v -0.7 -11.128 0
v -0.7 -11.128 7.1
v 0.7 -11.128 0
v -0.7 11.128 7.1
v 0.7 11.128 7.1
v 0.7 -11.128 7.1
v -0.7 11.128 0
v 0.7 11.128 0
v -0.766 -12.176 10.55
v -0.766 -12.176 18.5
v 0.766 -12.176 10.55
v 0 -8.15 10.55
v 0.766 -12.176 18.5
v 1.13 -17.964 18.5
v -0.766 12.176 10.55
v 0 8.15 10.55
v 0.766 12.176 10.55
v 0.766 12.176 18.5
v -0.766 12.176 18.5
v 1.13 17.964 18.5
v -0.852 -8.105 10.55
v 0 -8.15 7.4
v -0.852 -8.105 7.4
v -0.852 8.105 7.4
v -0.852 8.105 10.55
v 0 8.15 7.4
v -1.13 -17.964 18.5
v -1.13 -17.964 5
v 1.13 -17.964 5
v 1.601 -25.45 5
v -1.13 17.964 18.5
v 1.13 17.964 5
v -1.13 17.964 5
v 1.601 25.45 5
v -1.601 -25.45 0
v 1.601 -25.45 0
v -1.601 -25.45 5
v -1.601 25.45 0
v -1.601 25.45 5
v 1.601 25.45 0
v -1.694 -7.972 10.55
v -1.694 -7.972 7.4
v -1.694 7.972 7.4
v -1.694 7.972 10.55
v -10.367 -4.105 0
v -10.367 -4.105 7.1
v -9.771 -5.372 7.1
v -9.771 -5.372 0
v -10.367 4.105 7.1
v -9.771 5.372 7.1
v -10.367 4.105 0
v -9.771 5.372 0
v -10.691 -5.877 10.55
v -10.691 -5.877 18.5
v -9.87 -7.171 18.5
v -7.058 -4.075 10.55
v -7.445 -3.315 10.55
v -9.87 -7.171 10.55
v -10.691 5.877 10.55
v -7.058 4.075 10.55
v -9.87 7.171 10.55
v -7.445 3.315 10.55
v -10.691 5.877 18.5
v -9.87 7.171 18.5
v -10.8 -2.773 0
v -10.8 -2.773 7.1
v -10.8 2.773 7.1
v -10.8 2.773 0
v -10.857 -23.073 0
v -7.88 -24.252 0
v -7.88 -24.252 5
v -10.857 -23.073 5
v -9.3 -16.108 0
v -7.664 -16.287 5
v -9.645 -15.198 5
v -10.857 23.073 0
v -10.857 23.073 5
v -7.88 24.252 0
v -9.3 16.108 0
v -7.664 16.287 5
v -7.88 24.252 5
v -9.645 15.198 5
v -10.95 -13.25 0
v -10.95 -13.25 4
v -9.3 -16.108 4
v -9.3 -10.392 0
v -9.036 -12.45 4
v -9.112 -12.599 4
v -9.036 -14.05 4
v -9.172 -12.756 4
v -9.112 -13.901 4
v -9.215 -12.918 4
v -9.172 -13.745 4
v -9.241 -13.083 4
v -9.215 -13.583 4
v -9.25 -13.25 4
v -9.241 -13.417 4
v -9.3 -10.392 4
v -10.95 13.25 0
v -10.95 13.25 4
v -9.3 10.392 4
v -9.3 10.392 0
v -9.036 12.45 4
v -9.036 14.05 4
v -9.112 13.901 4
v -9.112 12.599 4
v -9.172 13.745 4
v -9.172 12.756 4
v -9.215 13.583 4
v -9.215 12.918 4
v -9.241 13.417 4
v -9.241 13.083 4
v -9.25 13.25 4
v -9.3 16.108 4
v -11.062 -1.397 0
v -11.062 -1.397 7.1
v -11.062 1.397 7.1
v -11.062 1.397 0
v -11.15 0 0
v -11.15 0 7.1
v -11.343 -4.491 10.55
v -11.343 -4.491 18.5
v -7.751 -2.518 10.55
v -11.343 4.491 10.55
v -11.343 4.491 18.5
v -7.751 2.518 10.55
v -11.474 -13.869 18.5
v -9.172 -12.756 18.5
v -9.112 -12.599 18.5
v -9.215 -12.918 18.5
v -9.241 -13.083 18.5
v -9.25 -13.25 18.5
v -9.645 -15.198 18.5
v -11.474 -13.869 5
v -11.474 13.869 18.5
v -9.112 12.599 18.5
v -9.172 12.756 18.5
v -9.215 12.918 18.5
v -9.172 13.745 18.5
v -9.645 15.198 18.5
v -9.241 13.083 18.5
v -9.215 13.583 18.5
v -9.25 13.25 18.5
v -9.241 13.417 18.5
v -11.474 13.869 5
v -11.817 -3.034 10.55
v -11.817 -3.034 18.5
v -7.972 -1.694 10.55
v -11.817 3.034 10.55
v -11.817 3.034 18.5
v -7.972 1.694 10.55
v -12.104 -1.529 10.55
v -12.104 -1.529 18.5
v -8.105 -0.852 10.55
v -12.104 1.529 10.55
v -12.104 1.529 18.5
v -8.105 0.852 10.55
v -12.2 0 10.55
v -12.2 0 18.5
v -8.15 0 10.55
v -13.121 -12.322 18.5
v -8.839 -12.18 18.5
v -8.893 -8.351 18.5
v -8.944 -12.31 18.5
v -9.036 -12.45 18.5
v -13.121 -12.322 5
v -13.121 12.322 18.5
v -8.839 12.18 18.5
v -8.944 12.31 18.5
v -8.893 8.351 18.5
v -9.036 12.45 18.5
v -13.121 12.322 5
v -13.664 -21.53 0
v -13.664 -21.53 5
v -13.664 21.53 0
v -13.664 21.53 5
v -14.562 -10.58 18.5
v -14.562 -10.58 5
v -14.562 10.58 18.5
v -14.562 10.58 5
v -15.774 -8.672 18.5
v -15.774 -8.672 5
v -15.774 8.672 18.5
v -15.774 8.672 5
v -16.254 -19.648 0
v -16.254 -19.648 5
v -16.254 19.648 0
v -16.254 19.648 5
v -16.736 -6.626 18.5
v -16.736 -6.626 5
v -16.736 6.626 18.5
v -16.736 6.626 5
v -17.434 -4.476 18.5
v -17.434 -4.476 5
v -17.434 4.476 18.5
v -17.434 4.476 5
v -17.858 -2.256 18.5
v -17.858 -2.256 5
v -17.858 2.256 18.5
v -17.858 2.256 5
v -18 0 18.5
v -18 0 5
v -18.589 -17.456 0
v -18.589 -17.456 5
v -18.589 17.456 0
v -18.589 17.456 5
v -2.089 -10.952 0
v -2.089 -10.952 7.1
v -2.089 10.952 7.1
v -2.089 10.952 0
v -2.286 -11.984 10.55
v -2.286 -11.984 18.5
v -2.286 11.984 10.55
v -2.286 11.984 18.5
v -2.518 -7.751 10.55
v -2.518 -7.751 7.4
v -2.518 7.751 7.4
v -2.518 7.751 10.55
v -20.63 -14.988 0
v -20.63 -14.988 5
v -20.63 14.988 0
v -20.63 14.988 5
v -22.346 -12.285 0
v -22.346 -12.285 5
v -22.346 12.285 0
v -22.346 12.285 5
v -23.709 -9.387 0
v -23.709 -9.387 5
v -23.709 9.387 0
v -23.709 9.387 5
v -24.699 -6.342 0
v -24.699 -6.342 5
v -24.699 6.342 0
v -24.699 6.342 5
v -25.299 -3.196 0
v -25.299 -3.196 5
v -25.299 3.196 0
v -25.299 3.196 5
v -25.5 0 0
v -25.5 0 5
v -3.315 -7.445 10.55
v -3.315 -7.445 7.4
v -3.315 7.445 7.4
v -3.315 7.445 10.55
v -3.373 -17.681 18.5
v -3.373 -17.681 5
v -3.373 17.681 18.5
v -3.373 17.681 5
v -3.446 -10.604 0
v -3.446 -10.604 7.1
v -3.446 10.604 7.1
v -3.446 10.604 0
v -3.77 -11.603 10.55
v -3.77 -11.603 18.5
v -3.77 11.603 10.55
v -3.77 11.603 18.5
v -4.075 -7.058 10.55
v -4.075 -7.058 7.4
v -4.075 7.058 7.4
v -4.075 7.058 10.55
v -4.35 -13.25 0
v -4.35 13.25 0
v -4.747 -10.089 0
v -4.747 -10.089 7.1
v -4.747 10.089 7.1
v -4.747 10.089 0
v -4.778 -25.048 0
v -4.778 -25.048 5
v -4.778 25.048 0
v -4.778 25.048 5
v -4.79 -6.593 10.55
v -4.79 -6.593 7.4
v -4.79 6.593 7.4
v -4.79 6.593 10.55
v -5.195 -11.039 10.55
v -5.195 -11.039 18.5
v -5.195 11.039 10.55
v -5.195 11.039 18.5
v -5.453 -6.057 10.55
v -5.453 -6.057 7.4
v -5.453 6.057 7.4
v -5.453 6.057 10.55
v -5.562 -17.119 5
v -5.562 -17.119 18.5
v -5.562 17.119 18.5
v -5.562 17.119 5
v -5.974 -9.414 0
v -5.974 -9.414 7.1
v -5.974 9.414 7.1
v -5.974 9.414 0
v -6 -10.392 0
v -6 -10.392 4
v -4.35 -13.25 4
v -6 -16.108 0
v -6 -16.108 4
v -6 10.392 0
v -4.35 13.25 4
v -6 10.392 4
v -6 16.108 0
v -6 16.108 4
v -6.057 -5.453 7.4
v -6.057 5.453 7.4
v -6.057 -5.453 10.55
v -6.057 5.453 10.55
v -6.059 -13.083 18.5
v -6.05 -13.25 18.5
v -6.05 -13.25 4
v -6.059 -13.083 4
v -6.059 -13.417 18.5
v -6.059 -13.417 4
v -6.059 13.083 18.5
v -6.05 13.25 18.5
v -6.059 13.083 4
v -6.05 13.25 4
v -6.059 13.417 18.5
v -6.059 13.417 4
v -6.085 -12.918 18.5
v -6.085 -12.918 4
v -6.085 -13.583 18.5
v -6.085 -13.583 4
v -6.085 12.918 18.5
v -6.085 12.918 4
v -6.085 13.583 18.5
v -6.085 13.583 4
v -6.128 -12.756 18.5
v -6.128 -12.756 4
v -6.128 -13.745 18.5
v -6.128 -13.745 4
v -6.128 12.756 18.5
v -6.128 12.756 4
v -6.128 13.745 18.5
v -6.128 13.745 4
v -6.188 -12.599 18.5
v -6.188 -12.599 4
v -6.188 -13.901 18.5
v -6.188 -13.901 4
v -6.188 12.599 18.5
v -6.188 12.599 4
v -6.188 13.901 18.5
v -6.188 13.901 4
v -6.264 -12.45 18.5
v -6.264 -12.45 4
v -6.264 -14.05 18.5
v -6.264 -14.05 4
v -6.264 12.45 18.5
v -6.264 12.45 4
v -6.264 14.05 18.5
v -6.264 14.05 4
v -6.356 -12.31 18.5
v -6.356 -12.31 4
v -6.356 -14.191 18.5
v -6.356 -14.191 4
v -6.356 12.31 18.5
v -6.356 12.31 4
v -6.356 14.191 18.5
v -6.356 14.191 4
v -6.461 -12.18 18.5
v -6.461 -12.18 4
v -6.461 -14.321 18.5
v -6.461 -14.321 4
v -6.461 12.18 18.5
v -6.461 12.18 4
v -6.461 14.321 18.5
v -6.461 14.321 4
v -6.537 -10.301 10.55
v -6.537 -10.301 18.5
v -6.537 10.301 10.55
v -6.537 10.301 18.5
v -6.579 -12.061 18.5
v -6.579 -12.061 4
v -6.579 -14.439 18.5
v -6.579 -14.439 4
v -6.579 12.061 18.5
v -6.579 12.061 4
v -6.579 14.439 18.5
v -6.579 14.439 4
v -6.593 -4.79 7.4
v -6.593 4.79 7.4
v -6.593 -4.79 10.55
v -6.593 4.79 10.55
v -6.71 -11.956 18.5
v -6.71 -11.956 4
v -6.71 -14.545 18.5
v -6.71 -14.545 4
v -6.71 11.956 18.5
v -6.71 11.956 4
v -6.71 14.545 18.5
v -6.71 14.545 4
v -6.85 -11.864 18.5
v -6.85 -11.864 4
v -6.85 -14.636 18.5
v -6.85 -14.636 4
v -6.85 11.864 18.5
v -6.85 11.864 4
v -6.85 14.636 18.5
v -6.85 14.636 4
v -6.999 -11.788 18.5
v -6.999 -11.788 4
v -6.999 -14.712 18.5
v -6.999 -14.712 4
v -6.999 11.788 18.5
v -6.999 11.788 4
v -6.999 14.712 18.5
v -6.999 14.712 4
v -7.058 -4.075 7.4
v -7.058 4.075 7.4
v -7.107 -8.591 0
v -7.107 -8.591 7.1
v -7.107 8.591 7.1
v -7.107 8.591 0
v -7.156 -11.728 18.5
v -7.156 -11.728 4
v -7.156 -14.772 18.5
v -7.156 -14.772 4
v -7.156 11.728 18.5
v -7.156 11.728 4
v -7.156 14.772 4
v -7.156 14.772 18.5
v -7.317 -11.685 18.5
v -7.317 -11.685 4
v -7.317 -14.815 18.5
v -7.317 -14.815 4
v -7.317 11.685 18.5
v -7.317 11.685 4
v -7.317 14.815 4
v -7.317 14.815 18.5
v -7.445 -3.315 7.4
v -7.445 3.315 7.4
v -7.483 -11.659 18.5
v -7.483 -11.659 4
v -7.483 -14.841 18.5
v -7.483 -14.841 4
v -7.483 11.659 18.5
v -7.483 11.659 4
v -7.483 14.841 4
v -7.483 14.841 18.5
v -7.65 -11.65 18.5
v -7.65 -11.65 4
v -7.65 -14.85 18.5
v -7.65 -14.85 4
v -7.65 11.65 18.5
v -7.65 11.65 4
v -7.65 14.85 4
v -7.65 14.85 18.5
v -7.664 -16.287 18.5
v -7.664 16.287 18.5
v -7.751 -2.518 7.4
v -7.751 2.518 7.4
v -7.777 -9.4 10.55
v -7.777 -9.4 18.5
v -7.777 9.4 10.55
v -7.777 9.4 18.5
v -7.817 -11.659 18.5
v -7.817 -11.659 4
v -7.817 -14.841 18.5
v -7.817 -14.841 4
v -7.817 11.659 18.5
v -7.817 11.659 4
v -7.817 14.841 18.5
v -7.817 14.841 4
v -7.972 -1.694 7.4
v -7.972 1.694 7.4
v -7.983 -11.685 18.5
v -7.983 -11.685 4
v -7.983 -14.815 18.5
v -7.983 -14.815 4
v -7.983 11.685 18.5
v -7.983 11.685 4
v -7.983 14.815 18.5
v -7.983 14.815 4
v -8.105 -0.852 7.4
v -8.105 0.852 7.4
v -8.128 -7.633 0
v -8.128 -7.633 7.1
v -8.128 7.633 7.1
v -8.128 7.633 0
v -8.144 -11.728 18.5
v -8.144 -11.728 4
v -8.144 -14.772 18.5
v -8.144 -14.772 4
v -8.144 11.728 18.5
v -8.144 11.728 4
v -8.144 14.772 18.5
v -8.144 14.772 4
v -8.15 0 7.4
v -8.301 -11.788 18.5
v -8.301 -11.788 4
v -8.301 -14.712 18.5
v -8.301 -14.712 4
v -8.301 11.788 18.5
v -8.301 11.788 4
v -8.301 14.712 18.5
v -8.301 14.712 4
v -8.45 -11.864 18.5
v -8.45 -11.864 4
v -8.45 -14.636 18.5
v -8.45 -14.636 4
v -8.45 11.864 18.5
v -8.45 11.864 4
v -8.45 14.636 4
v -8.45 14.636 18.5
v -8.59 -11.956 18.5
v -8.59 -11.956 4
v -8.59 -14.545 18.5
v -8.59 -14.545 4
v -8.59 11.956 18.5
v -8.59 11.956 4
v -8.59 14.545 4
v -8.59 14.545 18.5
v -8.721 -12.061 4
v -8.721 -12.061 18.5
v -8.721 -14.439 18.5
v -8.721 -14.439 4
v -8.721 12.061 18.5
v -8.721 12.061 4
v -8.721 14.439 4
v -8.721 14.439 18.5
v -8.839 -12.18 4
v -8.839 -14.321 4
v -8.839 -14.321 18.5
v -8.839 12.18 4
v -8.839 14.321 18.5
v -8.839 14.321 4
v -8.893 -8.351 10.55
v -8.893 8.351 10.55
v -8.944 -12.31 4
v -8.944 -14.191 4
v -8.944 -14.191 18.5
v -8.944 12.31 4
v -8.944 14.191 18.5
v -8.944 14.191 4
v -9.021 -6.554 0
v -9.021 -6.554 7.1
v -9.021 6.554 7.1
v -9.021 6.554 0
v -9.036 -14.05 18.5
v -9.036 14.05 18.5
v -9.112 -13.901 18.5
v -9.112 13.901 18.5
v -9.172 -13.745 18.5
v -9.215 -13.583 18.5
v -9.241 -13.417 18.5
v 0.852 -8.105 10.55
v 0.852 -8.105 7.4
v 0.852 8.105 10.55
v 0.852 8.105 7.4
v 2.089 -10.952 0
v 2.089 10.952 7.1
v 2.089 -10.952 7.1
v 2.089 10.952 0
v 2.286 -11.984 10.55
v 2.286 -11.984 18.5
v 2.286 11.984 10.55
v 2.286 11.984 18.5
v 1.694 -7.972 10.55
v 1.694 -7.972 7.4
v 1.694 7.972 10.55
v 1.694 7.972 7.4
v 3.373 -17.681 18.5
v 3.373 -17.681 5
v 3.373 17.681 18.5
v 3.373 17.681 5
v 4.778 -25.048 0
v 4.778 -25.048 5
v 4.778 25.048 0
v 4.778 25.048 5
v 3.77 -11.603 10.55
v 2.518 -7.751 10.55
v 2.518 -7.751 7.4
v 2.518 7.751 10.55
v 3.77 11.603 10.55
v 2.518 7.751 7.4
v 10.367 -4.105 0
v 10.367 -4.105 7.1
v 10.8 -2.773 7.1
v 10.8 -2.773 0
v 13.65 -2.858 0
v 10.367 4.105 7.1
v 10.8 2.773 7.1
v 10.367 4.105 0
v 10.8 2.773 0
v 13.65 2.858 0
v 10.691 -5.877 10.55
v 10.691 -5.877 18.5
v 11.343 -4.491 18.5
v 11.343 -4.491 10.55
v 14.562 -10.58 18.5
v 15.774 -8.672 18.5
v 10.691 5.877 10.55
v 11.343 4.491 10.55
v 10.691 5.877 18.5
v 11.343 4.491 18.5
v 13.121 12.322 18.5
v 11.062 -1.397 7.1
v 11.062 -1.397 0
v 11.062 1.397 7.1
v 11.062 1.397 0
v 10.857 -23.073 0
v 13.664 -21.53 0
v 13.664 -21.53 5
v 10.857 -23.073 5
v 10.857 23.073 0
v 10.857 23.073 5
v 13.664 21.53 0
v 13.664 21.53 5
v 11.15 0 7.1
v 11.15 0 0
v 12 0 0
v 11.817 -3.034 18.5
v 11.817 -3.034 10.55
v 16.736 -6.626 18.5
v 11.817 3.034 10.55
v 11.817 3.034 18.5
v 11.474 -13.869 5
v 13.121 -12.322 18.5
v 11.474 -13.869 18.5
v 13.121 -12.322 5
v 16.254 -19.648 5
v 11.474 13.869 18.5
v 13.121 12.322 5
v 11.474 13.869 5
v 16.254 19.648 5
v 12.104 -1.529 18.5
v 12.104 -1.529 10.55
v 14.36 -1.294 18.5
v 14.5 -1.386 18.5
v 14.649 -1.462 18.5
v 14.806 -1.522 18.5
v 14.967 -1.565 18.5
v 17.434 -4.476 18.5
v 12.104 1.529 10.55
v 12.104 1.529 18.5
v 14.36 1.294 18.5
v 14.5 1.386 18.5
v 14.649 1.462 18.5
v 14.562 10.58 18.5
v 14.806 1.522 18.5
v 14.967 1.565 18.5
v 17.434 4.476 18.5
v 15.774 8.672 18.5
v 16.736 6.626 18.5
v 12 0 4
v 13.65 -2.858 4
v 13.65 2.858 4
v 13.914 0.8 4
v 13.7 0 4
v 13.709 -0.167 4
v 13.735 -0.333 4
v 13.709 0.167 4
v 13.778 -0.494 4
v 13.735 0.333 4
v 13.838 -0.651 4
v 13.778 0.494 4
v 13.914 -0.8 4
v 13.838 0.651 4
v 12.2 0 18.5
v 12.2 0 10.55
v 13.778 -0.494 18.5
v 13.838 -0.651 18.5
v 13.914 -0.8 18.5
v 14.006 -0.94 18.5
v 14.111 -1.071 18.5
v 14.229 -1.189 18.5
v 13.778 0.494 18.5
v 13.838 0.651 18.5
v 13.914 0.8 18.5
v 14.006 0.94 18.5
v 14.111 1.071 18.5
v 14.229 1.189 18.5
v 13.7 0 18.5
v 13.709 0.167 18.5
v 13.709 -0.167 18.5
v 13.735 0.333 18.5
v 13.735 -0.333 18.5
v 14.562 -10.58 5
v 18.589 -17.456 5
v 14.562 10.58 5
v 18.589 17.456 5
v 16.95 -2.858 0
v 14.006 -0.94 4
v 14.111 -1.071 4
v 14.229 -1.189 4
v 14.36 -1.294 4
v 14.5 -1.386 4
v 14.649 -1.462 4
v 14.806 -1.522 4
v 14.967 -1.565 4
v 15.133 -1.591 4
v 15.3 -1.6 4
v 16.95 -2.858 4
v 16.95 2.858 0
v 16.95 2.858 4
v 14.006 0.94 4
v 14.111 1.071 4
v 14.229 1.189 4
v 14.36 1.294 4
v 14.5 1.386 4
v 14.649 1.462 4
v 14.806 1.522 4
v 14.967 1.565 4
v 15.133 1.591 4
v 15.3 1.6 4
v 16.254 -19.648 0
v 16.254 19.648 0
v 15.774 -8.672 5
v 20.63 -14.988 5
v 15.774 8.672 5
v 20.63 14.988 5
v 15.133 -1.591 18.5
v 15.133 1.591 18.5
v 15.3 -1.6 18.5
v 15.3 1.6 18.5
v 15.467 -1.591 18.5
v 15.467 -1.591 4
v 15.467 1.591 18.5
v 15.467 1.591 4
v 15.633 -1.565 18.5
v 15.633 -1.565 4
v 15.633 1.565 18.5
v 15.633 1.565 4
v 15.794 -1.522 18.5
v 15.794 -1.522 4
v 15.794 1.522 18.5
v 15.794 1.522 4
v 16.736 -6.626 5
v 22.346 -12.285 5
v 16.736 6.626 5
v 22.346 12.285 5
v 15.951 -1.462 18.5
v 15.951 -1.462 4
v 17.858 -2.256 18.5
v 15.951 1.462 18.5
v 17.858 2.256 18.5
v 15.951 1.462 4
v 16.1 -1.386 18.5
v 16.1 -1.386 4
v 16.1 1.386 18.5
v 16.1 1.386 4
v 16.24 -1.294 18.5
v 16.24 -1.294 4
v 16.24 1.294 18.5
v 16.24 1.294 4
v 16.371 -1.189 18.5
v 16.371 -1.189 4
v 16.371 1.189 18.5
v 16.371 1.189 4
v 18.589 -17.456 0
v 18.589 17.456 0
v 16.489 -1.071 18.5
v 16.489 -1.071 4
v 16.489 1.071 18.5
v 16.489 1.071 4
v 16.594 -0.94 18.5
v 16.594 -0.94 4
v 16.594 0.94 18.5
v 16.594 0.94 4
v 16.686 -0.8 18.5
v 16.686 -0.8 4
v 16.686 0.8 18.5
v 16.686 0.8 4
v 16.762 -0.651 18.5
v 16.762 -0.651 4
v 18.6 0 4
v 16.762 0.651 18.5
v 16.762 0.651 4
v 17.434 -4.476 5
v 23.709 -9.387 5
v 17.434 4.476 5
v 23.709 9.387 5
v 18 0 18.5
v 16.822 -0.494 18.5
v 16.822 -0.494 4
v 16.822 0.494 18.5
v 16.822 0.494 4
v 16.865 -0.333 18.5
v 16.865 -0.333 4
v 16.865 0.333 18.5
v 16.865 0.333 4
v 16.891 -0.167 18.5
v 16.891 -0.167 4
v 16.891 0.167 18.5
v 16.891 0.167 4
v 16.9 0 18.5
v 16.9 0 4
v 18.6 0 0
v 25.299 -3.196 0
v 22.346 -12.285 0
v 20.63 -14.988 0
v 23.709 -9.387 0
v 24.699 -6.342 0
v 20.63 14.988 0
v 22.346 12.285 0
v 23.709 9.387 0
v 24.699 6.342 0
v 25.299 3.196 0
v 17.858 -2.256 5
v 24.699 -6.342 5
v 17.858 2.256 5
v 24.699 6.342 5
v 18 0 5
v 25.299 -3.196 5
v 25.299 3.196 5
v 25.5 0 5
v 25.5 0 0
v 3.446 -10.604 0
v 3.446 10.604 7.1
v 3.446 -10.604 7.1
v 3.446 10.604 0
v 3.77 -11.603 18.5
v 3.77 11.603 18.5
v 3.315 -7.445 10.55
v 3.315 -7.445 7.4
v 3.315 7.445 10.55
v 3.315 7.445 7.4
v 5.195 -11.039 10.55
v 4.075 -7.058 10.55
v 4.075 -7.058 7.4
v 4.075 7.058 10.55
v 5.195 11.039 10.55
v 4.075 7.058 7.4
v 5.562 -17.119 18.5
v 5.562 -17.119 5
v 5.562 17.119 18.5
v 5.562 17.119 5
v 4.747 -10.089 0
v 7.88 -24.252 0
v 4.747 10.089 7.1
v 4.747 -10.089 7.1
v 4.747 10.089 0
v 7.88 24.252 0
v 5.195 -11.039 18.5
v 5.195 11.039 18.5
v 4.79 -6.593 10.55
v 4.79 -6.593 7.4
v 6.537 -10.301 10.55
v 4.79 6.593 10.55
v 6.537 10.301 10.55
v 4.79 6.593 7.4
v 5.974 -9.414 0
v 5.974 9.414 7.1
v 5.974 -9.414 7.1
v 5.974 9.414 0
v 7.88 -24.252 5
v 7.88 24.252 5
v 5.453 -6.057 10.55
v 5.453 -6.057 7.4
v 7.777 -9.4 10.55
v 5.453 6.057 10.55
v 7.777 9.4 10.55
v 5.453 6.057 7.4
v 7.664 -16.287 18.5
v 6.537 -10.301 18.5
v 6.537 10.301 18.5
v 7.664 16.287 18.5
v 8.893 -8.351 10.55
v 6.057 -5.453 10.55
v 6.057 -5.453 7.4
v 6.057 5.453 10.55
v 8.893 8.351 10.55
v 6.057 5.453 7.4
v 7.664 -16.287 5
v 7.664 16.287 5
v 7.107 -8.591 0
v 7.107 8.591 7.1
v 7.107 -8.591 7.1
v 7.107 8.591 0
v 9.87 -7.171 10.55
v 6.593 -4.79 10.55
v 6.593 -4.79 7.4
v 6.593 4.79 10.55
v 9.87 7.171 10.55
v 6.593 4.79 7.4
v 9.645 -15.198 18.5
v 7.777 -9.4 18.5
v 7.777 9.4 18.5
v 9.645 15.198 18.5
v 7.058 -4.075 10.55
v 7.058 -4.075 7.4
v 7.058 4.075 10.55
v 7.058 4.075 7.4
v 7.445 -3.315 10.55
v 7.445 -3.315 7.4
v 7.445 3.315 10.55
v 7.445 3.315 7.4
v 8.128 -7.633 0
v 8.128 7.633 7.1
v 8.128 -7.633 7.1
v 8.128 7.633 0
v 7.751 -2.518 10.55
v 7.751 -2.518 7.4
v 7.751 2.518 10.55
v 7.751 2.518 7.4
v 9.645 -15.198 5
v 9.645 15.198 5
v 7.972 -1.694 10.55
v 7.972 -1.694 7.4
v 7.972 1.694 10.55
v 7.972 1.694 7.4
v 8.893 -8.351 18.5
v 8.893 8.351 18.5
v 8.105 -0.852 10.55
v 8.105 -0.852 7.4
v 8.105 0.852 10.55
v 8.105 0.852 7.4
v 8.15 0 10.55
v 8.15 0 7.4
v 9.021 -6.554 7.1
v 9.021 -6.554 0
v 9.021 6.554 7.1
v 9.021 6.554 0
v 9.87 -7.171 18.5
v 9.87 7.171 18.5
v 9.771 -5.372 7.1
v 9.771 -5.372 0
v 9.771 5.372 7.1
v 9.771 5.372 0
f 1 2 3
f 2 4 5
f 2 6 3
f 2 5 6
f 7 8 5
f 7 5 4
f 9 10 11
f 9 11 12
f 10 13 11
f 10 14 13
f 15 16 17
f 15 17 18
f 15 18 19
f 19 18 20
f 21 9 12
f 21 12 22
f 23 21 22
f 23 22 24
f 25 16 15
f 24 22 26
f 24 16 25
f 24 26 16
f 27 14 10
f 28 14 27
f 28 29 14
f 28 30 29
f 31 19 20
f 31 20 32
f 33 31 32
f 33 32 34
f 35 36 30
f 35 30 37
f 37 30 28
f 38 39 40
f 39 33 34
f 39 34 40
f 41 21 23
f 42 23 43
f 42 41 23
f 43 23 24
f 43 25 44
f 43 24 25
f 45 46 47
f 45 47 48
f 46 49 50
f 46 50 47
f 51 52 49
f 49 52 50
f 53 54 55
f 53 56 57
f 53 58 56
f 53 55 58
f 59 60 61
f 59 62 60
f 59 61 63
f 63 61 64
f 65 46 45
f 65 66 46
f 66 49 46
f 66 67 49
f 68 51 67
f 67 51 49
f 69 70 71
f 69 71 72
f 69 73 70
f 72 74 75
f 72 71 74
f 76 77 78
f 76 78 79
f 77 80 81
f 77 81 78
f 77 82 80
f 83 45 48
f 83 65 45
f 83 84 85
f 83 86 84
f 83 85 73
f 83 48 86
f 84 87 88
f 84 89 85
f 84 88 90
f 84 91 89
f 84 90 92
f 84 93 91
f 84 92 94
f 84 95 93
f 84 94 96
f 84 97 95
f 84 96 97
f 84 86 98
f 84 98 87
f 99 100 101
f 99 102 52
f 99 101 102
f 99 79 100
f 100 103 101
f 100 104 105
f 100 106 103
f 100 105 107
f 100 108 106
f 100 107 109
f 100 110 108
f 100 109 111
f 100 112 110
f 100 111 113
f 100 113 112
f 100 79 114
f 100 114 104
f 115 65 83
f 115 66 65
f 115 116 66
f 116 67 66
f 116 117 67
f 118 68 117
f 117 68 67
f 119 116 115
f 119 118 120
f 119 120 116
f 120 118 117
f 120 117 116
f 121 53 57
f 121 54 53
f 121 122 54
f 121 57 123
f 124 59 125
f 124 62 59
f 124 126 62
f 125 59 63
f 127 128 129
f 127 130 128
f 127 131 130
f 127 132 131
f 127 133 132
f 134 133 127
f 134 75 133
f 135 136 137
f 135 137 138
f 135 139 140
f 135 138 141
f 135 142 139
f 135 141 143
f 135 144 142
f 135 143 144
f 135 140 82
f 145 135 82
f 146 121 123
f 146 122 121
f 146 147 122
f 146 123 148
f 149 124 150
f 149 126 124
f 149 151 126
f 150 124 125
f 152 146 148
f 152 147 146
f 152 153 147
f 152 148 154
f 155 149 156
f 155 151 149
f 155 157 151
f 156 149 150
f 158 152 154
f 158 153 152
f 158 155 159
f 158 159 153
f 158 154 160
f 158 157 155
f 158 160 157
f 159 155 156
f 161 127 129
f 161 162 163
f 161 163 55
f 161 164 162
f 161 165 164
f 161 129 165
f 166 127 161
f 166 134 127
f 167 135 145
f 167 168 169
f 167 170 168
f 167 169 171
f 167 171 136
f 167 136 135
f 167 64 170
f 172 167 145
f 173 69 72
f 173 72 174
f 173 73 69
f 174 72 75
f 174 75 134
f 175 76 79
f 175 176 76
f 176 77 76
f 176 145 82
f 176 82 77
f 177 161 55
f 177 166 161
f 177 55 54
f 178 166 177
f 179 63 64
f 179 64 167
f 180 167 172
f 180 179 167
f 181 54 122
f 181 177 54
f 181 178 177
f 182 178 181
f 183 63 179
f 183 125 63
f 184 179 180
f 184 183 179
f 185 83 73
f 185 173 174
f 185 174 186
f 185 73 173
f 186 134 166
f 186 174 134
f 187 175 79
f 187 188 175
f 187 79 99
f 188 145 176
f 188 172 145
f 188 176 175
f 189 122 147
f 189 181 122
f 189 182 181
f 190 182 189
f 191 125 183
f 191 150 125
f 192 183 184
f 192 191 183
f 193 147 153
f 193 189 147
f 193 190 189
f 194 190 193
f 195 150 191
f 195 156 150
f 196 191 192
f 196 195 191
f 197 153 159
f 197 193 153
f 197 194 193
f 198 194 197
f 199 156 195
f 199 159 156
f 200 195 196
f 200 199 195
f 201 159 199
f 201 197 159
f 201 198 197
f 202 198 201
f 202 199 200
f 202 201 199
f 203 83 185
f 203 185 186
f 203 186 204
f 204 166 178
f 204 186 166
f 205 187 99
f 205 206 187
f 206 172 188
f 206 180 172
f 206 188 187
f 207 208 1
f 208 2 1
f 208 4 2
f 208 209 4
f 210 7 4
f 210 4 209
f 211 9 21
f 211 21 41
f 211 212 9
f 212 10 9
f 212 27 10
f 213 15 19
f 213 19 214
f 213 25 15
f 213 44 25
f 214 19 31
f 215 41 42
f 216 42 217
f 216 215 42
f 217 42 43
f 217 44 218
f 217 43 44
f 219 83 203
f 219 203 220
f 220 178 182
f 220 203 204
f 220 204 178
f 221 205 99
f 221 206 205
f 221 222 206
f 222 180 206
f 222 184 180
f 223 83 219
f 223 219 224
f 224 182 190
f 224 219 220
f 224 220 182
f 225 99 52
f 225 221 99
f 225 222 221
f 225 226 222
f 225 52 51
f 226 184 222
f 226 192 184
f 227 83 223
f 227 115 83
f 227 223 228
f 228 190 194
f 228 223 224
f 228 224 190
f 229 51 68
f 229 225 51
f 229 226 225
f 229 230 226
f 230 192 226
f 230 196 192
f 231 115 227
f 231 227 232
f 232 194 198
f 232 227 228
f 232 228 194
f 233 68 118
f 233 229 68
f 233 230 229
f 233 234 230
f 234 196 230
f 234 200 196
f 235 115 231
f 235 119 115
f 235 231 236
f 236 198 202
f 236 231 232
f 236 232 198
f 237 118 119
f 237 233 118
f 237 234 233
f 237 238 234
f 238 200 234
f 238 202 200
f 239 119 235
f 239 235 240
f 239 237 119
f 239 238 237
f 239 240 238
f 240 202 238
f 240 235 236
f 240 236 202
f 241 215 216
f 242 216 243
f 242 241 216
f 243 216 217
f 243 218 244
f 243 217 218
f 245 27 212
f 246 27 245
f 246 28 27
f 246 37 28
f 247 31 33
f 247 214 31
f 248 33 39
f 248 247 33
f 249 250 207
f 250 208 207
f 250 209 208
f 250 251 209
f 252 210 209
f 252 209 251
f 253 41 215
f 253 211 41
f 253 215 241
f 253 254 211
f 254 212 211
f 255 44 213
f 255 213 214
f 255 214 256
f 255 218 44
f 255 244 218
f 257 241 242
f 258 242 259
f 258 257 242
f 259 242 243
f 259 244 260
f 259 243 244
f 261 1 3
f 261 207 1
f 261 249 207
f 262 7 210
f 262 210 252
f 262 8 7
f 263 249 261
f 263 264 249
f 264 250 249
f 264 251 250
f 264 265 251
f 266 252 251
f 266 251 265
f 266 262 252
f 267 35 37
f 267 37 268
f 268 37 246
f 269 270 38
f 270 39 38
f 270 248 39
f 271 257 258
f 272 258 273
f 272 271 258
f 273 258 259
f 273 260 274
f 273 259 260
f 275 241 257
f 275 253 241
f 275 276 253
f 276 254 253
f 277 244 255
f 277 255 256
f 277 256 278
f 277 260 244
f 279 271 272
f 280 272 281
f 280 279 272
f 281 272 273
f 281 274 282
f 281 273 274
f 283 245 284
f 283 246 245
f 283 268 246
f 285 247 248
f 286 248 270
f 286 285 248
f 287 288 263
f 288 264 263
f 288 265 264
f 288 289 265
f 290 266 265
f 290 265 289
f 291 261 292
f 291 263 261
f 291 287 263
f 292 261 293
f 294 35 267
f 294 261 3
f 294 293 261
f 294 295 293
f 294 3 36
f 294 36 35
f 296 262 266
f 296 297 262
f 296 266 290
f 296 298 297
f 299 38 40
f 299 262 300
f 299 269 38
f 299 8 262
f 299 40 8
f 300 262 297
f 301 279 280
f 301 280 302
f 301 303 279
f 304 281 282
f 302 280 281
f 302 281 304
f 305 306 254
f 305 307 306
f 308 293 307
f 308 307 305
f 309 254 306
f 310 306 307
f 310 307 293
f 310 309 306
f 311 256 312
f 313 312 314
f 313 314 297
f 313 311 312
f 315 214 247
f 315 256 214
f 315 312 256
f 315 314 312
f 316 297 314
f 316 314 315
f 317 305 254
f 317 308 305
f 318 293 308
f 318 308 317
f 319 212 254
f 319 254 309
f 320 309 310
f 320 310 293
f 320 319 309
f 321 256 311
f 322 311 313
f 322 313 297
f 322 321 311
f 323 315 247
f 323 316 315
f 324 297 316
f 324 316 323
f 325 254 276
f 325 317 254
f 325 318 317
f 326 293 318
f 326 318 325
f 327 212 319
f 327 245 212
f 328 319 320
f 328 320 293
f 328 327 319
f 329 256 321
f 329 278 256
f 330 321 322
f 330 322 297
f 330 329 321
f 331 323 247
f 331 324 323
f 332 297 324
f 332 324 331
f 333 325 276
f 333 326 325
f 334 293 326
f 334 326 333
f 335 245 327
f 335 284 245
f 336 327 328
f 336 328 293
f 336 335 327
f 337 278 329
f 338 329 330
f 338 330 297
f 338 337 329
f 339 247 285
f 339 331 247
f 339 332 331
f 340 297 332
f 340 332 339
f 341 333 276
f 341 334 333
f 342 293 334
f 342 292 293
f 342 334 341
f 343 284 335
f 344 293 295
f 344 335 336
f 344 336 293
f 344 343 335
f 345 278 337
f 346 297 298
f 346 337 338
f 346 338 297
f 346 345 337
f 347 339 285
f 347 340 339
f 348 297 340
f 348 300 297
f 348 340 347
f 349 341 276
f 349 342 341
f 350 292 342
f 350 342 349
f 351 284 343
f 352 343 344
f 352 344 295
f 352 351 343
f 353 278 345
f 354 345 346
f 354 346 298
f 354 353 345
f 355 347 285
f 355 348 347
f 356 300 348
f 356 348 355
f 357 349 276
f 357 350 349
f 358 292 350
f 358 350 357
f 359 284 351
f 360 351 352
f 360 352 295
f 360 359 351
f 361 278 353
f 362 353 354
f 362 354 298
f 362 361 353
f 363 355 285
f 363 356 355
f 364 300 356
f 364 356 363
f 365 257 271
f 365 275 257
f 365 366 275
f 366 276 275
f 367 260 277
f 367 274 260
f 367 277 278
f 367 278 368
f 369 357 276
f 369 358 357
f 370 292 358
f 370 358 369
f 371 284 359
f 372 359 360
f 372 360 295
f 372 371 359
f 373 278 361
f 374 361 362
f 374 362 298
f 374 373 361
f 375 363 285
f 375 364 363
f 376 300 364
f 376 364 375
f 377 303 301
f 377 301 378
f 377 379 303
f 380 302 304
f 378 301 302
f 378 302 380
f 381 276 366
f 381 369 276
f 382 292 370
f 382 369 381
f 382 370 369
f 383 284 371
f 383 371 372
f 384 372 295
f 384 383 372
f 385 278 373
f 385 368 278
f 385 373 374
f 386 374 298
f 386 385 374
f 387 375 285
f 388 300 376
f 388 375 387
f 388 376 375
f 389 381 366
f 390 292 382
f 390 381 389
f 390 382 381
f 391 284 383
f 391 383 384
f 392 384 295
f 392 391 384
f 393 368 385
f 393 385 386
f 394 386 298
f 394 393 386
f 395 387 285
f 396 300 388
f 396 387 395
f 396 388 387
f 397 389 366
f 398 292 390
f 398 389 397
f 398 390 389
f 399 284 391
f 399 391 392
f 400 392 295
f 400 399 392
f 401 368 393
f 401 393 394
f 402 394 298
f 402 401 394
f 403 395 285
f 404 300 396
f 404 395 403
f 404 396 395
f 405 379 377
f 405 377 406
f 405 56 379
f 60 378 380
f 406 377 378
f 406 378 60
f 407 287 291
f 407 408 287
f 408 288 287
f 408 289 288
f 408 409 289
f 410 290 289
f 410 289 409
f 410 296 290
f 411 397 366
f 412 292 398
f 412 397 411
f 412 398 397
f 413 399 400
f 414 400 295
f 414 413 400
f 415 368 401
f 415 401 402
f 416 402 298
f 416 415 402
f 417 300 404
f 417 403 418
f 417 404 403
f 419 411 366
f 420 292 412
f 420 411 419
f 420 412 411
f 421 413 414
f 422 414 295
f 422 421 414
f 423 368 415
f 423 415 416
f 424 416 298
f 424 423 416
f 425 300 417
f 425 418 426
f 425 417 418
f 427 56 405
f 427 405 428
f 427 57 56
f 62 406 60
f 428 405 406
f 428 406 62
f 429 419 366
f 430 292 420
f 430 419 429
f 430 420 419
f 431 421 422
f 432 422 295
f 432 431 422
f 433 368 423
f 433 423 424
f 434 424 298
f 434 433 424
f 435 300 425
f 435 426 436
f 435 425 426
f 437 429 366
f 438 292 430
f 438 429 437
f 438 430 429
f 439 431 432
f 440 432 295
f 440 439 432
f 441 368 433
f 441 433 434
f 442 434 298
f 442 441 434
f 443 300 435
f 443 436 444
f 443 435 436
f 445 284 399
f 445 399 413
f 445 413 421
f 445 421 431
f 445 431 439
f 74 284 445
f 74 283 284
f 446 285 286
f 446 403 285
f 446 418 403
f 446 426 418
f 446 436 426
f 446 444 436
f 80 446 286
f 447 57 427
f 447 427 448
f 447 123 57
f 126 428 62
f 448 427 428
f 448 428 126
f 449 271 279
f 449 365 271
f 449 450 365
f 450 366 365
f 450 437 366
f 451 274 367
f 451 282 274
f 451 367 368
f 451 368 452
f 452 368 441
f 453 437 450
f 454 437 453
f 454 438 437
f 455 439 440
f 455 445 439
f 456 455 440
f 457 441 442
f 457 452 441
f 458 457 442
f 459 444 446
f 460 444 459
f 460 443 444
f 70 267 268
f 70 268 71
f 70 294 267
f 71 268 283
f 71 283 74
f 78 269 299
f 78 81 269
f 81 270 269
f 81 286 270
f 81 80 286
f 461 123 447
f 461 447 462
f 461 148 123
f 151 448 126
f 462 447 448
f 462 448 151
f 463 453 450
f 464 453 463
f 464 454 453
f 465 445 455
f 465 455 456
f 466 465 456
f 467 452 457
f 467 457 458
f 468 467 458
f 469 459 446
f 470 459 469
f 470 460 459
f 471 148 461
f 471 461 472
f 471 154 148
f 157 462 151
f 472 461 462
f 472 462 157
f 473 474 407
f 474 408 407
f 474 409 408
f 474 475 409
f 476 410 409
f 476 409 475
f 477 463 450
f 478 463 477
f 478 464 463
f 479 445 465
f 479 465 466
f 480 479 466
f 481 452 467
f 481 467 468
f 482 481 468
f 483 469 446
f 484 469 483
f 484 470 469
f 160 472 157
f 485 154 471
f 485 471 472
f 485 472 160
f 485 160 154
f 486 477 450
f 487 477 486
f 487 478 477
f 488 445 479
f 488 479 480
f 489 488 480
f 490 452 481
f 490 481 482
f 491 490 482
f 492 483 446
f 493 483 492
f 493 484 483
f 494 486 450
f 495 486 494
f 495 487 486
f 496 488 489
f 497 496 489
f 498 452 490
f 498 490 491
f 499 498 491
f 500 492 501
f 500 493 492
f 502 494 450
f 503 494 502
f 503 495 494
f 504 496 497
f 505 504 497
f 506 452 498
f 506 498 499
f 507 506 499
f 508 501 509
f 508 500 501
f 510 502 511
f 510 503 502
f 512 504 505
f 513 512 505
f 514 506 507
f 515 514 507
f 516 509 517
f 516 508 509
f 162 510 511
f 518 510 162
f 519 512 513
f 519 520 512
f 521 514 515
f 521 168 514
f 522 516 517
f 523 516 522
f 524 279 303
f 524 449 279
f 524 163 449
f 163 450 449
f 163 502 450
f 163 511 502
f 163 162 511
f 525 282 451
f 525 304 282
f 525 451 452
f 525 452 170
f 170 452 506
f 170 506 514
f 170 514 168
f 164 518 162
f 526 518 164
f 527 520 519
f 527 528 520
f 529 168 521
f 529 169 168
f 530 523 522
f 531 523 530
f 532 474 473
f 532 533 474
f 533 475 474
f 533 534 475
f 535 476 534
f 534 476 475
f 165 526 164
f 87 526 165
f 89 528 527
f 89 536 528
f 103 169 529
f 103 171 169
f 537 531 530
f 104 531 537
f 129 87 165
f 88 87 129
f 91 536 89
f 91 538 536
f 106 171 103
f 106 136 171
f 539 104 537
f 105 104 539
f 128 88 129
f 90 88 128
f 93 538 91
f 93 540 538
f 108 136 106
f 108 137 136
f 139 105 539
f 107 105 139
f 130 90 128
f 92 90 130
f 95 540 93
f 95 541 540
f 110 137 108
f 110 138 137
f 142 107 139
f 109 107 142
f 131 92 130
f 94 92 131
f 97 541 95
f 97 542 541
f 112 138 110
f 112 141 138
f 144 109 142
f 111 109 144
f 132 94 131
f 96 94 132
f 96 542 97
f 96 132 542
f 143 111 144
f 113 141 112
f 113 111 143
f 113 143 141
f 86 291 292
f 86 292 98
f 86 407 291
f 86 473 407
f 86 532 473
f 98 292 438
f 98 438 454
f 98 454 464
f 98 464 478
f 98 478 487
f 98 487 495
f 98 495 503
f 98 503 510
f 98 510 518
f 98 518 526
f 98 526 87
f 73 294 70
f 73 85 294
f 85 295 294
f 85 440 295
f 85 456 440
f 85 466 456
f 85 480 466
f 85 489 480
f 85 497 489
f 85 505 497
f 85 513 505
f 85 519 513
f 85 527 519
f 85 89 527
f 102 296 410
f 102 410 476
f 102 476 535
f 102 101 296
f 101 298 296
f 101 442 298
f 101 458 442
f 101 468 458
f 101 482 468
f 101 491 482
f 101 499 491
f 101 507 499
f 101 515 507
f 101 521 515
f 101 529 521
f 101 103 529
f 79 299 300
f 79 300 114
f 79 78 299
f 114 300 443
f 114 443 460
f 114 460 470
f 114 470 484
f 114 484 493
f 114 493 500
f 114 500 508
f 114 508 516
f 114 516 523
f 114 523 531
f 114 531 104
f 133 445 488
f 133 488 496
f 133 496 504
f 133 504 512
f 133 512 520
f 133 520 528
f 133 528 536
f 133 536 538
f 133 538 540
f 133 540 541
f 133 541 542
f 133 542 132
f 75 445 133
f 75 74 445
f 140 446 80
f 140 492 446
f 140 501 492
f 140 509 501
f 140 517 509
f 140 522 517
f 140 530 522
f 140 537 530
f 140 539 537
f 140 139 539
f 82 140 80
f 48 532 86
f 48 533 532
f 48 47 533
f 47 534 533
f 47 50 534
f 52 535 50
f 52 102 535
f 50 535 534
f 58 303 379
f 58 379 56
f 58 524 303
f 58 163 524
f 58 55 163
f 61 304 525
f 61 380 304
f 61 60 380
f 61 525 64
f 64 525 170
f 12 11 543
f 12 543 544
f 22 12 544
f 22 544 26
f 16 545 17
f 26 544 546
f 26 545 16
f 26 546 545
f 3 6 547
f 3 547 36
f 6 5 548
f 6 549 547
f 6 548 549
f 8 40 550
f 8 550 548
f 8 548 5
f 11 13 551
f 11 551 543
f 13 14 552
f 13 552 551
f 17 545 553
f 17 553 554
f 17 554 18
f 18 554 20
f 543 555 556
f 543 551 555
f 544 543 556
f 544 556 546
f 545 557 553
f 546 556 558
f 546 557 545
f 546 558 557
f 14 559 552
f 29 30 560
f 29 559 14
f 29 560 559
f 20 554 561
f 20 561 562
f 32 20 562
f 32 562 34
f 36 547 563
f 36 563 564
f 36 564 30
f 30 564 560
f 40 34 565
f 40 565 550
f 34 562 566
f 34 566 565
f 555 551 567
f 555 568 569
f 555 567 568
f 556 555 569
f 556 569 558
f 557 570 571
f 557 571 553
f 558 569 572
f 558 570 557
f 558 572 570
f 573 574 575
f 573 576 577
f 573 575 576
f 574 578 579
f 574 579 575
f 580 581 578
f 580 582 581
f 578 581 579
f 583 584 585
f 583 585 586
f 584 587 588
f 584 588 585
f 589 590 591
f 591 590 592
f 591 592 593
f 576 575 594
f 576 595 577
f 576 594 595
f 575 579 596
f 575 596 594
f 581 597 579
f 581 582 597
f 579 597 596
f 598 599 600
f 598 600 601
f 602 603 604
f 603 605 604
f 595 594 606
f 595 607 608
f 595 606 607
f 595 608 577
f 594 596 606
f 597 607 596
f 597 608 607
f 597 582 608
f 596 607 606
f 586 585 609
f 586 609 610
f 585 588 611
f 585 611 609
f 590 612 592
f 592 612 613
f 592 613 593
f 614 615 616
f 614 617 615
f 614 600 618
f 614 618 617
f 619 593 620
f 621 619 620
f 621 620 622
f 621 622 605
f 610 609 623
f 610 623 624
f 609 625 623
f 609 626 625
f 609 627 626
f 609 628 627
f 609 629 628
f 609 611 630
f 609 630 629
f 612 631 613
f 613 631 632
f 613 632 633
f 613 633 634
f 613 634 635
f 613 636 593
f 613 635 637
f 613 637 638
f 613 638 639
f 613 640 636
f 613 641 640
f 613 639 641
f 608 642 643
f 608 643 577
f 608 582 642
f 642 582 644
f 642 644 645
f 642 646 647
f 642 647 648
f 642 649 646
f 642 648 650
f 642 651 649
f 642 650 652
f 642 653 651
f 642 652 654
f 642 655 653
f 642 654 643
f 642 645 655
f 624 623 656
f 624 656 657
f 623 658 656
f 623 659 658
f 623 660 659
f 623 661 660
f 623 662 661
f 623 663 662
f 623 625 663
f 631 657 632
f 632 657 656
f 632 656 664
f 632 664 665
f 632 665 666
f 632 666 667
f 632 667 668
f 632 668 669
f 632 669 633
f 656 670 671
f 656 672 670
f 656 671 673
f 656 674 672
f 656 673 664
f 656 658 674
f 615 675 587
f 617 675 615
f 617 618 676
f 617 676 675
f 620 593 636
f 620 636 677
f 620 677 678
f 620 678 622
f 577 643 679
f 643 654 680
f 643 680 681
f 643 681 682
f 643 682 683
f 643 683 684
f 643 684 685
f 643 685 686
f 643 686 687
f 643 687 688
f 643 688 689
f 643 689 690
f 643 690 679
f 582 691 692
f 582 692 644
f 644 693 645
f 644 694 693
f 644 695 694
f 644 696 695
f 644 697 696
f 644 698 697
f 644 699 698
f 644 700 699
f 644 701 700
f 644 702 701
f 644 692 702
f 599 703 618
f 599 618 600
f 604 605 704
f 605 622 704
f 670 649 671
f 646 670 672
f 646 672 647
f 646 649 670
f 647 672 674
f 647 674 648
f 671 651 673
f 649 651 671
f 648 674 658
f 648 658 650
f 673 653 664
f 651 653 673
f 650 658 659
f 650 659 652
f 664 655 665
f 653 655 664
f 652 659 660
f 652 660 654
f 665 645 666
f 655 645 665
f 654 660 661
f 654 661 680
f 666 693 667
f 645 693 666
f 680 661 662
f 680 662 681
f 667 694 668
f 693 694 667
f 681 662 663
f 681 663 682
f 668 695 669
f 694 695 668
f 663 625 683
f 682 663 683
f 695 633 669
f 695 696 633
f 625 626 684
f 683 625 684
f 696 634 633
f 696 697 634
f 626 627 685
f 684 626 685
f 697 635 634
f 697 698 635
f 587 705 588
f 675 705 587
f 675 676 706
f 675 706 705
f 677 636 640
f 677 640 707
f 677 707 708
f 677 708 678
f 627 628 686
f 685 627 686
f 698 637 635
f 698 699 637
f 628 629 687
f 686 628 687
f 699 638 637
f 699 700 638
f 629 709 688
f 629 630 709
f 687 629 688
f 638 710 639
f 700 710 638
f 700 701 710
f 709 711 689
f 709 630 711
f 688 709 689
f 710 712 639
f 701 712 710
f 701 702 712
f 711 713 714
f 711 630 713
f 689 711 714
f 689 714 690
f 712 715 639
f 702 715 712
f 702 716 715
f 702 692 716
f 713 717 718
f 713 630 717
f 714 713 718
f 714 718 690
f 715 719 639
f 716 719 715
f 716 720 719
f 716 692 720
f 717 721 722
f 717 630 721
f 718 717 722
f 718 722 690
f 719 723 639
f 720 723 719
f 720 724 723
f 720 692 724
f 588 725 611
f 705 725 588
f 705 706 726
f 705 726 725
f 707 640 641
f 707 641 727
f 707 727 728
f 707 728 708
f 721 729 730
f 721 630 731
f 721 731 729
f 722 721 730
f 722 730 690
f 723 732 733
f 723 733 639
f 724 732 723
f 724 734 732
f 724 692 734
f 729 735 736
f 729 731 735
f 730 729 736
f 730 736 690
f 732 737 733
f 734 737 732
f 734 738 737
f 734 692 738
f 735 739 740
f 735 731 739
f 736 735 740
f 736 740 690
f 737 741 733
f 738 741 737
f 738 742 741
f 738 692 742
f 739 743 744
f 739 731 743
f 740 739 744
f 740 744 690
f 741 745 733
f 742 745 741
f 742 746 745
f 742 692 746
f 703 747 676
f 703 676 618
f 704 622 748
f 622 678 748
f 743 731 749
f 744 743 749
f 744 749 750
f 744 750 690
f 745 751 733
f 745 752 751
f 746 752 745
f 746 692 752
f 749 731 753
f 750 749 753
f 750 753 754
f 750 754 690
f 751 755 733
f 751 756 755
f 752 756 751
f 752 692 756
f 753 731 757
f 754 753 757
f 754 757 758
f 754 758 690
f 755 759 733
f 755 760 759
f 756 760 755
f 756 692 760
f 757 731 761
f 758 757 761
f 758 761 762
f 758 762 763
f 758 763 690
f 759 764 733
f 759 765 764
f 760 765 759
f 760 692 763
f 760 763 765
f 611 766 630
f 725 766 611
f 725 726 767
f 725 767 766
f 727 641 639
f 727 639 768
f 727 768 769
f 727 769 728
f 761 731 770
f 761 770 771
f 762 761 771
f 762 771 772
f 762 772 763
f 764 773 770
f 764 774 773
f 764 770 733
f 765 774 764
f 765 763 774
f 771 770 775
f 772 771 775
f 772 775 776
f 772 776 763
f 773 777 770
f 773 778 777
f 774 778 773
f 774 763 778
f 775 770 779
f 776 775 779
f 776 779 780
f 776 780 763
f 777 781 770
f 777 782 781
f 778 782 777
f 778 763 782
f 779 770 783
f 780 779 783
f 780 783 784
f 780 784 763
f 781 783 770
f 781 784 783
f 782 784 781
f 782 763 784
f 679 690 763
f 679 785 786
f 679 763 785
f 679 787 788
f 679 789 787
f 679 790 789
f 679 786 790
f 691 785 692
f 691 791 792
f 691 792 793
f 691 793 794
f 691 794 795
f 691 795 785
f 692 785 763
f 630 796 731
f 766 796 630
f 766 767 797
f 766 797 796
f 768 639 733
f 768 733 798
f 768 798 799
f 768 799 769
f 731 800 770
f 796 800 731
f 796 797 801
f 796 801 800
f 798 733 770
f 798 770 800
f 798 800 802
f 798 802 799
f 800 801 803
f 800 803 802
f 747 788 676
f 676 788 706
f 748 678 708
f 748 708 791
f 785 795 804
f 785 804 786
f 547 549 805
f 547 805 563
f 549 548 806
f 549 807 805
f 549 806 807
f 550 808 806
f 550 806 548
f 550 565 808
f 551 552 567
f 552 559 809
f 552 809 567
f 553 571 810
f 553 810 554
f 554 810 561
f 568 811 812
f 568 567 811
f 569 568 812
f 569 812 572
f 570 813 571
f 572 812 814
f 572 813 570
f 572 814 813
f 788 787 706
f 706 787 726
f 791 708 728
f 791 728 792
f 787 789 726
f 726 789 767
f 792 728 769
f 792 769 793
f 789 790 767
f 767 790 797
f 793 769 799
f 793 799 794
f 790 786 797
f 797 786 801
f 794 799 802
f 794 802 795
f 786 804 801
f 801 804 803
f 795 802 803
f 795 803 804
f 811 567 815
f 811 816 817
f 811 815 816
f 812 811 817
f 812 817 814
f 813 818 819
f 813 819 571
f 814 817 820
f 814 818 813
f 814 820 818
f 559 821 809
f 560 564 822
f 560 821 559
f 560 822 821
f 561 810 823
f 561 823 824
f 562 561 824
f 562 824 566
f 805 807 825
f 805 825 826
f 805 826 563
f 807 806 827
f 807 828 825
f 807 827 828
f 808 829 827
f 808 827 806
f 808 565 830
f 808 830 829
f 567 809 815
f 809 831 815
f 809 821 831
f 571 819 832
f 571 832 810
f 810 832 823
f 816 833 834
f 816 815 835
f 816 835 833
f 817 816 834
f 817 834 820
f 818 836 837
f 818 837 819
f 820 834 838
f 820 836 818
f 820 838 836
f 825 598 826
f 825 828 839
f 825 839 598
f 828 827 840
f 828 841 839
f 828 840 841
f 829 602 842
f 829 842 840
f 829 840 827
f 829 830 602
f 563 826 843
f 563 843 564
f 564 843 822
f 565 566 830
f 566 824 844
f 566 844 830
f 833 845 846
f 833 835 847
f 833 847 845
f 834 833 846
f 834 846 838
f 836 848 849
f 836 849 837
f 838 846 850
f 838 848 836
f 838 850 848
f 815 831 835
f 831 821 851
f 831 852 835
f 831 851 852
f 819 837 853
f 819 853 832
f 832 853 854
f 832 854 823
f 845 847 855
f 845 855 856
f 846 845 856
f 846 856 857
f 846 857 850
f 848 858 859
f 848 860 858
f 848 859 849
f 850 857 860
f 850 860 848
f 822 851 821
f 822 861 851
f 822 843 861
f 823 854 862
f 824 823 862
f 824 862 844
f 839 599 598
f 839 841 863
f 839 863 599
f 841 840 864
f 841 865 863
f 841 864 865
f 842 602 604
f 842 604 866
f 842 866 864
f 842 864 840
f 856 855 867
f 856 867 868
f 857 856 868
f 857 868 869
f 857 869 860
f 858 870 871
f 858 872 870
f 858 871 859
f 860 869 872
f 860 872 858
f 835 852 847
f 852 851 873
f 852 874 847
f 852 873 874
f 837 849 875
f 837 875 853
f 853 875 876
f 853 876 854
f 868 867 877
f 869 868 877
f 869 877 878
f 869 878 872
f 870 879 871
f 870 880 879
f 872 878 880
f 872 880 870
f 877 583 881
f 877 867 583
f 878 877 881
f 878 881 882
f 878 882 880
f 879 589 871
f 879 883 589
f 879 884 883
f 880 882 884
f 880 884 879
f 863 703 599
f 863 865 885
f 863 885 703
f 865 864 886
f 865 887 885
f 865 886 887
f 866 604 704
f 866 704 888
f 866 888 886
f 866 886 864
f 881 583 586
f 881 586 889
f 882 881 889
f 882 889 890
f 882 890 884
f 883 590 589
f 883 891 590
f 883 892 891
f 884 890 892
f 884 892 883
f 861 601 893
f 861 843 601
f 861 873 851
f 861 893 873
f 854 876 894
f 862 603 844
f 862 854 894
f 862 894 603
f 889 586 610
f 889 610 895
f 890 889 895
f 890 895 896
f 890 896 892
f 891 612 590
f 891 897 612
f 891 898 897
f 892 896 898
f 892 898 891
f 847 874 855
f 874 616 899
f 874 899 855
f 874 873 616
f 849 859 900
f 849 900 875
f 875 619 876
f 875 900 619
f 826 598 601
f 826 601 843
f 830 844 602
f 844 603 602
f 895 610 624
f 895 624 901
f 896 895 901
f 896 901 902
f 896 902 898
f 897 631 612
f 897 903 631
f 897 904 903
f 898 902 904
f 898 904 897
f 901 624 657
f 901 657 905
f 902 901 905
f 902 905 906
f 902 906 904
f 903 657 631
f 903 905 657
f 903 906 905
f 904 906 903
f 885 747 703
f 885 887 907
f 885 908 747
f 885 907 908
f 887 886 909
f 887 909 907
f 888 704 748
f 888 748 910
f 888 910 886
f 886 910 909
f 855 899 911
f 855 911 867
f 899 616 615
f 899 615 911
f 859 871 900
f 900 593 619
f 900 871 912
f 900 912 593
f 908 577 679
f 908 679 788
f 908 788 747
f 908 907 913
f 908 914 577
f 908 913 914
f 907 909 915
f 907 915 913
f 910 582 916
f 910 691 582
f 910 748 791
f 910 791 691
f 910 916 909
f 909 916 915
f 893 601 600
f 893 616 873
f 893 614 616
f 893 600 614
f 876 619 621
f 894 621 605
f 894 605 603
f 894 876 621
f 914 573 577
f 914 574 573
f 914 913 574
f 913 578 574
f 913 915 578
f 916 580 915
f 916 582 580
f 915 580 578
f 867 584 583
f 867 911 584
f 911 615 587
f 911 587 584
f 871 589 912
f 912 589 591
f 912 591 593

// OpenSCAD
//Navrh disku pro mechove kolo

include <../parameters.scad>

global_clearance = 0.5;

layer_thickness = 0.3;

module 888_1029 (nut = true) {
    difference() {
        union() {
            cylinder(h=wheel_disc_upper_thickness, d=wheel_disc_diameter, $fn=50);
            cylinder(h=wheel_disc_upper_thickness+wheel_inner_thickness/2-0.5, d=wheel_inner_diameter, $fn=50);
        }

        translate([0, 0, 608_bearing_thickness/2 + wheel_disc_upper_thickness+2])
            cylinder(h=wheel_inner_thickness/2, d=wheel_inner_diameter-M3_nut_diameter-5, $fn=50);

        for (i=[0:2]) {
            //diry na srouby
            rotate([0,0,120*i])
                translate([wheel_inner_diameter/2-M3_screw_diameter+0.5, 0, -1])
                    cylinder(h=wheel_inner_thickness, d=M3_screw_diameter, $fn=60);

            //diry na matice nebo zapusteni hlavy sroubu M3x35
            rotate([0,0,120*i])
                  translate([wheel_inner_diameter/2-M3_screw_diameter+0.5, 0, -1])
                      cylinder(h=M3_screw_head_height+2, d=M3_nut_diameter, $fn= nut? 6 : 50);

          }

        //dira na M5 sroub
        translate([0, 0, 608_bearing_thickness + layer_thickness])
            cylinder (h=wheel_inner_thickness, d=608_bearing_outer_diameter-6, $fn=60);

        //dira pro lozisko 608
        translate([0, 0, -1])
            cylinder(h=608_bearing_thickness+1, d=608_bearing_outer_diameter, $fn=50);
    }
}

888_1029(true);
